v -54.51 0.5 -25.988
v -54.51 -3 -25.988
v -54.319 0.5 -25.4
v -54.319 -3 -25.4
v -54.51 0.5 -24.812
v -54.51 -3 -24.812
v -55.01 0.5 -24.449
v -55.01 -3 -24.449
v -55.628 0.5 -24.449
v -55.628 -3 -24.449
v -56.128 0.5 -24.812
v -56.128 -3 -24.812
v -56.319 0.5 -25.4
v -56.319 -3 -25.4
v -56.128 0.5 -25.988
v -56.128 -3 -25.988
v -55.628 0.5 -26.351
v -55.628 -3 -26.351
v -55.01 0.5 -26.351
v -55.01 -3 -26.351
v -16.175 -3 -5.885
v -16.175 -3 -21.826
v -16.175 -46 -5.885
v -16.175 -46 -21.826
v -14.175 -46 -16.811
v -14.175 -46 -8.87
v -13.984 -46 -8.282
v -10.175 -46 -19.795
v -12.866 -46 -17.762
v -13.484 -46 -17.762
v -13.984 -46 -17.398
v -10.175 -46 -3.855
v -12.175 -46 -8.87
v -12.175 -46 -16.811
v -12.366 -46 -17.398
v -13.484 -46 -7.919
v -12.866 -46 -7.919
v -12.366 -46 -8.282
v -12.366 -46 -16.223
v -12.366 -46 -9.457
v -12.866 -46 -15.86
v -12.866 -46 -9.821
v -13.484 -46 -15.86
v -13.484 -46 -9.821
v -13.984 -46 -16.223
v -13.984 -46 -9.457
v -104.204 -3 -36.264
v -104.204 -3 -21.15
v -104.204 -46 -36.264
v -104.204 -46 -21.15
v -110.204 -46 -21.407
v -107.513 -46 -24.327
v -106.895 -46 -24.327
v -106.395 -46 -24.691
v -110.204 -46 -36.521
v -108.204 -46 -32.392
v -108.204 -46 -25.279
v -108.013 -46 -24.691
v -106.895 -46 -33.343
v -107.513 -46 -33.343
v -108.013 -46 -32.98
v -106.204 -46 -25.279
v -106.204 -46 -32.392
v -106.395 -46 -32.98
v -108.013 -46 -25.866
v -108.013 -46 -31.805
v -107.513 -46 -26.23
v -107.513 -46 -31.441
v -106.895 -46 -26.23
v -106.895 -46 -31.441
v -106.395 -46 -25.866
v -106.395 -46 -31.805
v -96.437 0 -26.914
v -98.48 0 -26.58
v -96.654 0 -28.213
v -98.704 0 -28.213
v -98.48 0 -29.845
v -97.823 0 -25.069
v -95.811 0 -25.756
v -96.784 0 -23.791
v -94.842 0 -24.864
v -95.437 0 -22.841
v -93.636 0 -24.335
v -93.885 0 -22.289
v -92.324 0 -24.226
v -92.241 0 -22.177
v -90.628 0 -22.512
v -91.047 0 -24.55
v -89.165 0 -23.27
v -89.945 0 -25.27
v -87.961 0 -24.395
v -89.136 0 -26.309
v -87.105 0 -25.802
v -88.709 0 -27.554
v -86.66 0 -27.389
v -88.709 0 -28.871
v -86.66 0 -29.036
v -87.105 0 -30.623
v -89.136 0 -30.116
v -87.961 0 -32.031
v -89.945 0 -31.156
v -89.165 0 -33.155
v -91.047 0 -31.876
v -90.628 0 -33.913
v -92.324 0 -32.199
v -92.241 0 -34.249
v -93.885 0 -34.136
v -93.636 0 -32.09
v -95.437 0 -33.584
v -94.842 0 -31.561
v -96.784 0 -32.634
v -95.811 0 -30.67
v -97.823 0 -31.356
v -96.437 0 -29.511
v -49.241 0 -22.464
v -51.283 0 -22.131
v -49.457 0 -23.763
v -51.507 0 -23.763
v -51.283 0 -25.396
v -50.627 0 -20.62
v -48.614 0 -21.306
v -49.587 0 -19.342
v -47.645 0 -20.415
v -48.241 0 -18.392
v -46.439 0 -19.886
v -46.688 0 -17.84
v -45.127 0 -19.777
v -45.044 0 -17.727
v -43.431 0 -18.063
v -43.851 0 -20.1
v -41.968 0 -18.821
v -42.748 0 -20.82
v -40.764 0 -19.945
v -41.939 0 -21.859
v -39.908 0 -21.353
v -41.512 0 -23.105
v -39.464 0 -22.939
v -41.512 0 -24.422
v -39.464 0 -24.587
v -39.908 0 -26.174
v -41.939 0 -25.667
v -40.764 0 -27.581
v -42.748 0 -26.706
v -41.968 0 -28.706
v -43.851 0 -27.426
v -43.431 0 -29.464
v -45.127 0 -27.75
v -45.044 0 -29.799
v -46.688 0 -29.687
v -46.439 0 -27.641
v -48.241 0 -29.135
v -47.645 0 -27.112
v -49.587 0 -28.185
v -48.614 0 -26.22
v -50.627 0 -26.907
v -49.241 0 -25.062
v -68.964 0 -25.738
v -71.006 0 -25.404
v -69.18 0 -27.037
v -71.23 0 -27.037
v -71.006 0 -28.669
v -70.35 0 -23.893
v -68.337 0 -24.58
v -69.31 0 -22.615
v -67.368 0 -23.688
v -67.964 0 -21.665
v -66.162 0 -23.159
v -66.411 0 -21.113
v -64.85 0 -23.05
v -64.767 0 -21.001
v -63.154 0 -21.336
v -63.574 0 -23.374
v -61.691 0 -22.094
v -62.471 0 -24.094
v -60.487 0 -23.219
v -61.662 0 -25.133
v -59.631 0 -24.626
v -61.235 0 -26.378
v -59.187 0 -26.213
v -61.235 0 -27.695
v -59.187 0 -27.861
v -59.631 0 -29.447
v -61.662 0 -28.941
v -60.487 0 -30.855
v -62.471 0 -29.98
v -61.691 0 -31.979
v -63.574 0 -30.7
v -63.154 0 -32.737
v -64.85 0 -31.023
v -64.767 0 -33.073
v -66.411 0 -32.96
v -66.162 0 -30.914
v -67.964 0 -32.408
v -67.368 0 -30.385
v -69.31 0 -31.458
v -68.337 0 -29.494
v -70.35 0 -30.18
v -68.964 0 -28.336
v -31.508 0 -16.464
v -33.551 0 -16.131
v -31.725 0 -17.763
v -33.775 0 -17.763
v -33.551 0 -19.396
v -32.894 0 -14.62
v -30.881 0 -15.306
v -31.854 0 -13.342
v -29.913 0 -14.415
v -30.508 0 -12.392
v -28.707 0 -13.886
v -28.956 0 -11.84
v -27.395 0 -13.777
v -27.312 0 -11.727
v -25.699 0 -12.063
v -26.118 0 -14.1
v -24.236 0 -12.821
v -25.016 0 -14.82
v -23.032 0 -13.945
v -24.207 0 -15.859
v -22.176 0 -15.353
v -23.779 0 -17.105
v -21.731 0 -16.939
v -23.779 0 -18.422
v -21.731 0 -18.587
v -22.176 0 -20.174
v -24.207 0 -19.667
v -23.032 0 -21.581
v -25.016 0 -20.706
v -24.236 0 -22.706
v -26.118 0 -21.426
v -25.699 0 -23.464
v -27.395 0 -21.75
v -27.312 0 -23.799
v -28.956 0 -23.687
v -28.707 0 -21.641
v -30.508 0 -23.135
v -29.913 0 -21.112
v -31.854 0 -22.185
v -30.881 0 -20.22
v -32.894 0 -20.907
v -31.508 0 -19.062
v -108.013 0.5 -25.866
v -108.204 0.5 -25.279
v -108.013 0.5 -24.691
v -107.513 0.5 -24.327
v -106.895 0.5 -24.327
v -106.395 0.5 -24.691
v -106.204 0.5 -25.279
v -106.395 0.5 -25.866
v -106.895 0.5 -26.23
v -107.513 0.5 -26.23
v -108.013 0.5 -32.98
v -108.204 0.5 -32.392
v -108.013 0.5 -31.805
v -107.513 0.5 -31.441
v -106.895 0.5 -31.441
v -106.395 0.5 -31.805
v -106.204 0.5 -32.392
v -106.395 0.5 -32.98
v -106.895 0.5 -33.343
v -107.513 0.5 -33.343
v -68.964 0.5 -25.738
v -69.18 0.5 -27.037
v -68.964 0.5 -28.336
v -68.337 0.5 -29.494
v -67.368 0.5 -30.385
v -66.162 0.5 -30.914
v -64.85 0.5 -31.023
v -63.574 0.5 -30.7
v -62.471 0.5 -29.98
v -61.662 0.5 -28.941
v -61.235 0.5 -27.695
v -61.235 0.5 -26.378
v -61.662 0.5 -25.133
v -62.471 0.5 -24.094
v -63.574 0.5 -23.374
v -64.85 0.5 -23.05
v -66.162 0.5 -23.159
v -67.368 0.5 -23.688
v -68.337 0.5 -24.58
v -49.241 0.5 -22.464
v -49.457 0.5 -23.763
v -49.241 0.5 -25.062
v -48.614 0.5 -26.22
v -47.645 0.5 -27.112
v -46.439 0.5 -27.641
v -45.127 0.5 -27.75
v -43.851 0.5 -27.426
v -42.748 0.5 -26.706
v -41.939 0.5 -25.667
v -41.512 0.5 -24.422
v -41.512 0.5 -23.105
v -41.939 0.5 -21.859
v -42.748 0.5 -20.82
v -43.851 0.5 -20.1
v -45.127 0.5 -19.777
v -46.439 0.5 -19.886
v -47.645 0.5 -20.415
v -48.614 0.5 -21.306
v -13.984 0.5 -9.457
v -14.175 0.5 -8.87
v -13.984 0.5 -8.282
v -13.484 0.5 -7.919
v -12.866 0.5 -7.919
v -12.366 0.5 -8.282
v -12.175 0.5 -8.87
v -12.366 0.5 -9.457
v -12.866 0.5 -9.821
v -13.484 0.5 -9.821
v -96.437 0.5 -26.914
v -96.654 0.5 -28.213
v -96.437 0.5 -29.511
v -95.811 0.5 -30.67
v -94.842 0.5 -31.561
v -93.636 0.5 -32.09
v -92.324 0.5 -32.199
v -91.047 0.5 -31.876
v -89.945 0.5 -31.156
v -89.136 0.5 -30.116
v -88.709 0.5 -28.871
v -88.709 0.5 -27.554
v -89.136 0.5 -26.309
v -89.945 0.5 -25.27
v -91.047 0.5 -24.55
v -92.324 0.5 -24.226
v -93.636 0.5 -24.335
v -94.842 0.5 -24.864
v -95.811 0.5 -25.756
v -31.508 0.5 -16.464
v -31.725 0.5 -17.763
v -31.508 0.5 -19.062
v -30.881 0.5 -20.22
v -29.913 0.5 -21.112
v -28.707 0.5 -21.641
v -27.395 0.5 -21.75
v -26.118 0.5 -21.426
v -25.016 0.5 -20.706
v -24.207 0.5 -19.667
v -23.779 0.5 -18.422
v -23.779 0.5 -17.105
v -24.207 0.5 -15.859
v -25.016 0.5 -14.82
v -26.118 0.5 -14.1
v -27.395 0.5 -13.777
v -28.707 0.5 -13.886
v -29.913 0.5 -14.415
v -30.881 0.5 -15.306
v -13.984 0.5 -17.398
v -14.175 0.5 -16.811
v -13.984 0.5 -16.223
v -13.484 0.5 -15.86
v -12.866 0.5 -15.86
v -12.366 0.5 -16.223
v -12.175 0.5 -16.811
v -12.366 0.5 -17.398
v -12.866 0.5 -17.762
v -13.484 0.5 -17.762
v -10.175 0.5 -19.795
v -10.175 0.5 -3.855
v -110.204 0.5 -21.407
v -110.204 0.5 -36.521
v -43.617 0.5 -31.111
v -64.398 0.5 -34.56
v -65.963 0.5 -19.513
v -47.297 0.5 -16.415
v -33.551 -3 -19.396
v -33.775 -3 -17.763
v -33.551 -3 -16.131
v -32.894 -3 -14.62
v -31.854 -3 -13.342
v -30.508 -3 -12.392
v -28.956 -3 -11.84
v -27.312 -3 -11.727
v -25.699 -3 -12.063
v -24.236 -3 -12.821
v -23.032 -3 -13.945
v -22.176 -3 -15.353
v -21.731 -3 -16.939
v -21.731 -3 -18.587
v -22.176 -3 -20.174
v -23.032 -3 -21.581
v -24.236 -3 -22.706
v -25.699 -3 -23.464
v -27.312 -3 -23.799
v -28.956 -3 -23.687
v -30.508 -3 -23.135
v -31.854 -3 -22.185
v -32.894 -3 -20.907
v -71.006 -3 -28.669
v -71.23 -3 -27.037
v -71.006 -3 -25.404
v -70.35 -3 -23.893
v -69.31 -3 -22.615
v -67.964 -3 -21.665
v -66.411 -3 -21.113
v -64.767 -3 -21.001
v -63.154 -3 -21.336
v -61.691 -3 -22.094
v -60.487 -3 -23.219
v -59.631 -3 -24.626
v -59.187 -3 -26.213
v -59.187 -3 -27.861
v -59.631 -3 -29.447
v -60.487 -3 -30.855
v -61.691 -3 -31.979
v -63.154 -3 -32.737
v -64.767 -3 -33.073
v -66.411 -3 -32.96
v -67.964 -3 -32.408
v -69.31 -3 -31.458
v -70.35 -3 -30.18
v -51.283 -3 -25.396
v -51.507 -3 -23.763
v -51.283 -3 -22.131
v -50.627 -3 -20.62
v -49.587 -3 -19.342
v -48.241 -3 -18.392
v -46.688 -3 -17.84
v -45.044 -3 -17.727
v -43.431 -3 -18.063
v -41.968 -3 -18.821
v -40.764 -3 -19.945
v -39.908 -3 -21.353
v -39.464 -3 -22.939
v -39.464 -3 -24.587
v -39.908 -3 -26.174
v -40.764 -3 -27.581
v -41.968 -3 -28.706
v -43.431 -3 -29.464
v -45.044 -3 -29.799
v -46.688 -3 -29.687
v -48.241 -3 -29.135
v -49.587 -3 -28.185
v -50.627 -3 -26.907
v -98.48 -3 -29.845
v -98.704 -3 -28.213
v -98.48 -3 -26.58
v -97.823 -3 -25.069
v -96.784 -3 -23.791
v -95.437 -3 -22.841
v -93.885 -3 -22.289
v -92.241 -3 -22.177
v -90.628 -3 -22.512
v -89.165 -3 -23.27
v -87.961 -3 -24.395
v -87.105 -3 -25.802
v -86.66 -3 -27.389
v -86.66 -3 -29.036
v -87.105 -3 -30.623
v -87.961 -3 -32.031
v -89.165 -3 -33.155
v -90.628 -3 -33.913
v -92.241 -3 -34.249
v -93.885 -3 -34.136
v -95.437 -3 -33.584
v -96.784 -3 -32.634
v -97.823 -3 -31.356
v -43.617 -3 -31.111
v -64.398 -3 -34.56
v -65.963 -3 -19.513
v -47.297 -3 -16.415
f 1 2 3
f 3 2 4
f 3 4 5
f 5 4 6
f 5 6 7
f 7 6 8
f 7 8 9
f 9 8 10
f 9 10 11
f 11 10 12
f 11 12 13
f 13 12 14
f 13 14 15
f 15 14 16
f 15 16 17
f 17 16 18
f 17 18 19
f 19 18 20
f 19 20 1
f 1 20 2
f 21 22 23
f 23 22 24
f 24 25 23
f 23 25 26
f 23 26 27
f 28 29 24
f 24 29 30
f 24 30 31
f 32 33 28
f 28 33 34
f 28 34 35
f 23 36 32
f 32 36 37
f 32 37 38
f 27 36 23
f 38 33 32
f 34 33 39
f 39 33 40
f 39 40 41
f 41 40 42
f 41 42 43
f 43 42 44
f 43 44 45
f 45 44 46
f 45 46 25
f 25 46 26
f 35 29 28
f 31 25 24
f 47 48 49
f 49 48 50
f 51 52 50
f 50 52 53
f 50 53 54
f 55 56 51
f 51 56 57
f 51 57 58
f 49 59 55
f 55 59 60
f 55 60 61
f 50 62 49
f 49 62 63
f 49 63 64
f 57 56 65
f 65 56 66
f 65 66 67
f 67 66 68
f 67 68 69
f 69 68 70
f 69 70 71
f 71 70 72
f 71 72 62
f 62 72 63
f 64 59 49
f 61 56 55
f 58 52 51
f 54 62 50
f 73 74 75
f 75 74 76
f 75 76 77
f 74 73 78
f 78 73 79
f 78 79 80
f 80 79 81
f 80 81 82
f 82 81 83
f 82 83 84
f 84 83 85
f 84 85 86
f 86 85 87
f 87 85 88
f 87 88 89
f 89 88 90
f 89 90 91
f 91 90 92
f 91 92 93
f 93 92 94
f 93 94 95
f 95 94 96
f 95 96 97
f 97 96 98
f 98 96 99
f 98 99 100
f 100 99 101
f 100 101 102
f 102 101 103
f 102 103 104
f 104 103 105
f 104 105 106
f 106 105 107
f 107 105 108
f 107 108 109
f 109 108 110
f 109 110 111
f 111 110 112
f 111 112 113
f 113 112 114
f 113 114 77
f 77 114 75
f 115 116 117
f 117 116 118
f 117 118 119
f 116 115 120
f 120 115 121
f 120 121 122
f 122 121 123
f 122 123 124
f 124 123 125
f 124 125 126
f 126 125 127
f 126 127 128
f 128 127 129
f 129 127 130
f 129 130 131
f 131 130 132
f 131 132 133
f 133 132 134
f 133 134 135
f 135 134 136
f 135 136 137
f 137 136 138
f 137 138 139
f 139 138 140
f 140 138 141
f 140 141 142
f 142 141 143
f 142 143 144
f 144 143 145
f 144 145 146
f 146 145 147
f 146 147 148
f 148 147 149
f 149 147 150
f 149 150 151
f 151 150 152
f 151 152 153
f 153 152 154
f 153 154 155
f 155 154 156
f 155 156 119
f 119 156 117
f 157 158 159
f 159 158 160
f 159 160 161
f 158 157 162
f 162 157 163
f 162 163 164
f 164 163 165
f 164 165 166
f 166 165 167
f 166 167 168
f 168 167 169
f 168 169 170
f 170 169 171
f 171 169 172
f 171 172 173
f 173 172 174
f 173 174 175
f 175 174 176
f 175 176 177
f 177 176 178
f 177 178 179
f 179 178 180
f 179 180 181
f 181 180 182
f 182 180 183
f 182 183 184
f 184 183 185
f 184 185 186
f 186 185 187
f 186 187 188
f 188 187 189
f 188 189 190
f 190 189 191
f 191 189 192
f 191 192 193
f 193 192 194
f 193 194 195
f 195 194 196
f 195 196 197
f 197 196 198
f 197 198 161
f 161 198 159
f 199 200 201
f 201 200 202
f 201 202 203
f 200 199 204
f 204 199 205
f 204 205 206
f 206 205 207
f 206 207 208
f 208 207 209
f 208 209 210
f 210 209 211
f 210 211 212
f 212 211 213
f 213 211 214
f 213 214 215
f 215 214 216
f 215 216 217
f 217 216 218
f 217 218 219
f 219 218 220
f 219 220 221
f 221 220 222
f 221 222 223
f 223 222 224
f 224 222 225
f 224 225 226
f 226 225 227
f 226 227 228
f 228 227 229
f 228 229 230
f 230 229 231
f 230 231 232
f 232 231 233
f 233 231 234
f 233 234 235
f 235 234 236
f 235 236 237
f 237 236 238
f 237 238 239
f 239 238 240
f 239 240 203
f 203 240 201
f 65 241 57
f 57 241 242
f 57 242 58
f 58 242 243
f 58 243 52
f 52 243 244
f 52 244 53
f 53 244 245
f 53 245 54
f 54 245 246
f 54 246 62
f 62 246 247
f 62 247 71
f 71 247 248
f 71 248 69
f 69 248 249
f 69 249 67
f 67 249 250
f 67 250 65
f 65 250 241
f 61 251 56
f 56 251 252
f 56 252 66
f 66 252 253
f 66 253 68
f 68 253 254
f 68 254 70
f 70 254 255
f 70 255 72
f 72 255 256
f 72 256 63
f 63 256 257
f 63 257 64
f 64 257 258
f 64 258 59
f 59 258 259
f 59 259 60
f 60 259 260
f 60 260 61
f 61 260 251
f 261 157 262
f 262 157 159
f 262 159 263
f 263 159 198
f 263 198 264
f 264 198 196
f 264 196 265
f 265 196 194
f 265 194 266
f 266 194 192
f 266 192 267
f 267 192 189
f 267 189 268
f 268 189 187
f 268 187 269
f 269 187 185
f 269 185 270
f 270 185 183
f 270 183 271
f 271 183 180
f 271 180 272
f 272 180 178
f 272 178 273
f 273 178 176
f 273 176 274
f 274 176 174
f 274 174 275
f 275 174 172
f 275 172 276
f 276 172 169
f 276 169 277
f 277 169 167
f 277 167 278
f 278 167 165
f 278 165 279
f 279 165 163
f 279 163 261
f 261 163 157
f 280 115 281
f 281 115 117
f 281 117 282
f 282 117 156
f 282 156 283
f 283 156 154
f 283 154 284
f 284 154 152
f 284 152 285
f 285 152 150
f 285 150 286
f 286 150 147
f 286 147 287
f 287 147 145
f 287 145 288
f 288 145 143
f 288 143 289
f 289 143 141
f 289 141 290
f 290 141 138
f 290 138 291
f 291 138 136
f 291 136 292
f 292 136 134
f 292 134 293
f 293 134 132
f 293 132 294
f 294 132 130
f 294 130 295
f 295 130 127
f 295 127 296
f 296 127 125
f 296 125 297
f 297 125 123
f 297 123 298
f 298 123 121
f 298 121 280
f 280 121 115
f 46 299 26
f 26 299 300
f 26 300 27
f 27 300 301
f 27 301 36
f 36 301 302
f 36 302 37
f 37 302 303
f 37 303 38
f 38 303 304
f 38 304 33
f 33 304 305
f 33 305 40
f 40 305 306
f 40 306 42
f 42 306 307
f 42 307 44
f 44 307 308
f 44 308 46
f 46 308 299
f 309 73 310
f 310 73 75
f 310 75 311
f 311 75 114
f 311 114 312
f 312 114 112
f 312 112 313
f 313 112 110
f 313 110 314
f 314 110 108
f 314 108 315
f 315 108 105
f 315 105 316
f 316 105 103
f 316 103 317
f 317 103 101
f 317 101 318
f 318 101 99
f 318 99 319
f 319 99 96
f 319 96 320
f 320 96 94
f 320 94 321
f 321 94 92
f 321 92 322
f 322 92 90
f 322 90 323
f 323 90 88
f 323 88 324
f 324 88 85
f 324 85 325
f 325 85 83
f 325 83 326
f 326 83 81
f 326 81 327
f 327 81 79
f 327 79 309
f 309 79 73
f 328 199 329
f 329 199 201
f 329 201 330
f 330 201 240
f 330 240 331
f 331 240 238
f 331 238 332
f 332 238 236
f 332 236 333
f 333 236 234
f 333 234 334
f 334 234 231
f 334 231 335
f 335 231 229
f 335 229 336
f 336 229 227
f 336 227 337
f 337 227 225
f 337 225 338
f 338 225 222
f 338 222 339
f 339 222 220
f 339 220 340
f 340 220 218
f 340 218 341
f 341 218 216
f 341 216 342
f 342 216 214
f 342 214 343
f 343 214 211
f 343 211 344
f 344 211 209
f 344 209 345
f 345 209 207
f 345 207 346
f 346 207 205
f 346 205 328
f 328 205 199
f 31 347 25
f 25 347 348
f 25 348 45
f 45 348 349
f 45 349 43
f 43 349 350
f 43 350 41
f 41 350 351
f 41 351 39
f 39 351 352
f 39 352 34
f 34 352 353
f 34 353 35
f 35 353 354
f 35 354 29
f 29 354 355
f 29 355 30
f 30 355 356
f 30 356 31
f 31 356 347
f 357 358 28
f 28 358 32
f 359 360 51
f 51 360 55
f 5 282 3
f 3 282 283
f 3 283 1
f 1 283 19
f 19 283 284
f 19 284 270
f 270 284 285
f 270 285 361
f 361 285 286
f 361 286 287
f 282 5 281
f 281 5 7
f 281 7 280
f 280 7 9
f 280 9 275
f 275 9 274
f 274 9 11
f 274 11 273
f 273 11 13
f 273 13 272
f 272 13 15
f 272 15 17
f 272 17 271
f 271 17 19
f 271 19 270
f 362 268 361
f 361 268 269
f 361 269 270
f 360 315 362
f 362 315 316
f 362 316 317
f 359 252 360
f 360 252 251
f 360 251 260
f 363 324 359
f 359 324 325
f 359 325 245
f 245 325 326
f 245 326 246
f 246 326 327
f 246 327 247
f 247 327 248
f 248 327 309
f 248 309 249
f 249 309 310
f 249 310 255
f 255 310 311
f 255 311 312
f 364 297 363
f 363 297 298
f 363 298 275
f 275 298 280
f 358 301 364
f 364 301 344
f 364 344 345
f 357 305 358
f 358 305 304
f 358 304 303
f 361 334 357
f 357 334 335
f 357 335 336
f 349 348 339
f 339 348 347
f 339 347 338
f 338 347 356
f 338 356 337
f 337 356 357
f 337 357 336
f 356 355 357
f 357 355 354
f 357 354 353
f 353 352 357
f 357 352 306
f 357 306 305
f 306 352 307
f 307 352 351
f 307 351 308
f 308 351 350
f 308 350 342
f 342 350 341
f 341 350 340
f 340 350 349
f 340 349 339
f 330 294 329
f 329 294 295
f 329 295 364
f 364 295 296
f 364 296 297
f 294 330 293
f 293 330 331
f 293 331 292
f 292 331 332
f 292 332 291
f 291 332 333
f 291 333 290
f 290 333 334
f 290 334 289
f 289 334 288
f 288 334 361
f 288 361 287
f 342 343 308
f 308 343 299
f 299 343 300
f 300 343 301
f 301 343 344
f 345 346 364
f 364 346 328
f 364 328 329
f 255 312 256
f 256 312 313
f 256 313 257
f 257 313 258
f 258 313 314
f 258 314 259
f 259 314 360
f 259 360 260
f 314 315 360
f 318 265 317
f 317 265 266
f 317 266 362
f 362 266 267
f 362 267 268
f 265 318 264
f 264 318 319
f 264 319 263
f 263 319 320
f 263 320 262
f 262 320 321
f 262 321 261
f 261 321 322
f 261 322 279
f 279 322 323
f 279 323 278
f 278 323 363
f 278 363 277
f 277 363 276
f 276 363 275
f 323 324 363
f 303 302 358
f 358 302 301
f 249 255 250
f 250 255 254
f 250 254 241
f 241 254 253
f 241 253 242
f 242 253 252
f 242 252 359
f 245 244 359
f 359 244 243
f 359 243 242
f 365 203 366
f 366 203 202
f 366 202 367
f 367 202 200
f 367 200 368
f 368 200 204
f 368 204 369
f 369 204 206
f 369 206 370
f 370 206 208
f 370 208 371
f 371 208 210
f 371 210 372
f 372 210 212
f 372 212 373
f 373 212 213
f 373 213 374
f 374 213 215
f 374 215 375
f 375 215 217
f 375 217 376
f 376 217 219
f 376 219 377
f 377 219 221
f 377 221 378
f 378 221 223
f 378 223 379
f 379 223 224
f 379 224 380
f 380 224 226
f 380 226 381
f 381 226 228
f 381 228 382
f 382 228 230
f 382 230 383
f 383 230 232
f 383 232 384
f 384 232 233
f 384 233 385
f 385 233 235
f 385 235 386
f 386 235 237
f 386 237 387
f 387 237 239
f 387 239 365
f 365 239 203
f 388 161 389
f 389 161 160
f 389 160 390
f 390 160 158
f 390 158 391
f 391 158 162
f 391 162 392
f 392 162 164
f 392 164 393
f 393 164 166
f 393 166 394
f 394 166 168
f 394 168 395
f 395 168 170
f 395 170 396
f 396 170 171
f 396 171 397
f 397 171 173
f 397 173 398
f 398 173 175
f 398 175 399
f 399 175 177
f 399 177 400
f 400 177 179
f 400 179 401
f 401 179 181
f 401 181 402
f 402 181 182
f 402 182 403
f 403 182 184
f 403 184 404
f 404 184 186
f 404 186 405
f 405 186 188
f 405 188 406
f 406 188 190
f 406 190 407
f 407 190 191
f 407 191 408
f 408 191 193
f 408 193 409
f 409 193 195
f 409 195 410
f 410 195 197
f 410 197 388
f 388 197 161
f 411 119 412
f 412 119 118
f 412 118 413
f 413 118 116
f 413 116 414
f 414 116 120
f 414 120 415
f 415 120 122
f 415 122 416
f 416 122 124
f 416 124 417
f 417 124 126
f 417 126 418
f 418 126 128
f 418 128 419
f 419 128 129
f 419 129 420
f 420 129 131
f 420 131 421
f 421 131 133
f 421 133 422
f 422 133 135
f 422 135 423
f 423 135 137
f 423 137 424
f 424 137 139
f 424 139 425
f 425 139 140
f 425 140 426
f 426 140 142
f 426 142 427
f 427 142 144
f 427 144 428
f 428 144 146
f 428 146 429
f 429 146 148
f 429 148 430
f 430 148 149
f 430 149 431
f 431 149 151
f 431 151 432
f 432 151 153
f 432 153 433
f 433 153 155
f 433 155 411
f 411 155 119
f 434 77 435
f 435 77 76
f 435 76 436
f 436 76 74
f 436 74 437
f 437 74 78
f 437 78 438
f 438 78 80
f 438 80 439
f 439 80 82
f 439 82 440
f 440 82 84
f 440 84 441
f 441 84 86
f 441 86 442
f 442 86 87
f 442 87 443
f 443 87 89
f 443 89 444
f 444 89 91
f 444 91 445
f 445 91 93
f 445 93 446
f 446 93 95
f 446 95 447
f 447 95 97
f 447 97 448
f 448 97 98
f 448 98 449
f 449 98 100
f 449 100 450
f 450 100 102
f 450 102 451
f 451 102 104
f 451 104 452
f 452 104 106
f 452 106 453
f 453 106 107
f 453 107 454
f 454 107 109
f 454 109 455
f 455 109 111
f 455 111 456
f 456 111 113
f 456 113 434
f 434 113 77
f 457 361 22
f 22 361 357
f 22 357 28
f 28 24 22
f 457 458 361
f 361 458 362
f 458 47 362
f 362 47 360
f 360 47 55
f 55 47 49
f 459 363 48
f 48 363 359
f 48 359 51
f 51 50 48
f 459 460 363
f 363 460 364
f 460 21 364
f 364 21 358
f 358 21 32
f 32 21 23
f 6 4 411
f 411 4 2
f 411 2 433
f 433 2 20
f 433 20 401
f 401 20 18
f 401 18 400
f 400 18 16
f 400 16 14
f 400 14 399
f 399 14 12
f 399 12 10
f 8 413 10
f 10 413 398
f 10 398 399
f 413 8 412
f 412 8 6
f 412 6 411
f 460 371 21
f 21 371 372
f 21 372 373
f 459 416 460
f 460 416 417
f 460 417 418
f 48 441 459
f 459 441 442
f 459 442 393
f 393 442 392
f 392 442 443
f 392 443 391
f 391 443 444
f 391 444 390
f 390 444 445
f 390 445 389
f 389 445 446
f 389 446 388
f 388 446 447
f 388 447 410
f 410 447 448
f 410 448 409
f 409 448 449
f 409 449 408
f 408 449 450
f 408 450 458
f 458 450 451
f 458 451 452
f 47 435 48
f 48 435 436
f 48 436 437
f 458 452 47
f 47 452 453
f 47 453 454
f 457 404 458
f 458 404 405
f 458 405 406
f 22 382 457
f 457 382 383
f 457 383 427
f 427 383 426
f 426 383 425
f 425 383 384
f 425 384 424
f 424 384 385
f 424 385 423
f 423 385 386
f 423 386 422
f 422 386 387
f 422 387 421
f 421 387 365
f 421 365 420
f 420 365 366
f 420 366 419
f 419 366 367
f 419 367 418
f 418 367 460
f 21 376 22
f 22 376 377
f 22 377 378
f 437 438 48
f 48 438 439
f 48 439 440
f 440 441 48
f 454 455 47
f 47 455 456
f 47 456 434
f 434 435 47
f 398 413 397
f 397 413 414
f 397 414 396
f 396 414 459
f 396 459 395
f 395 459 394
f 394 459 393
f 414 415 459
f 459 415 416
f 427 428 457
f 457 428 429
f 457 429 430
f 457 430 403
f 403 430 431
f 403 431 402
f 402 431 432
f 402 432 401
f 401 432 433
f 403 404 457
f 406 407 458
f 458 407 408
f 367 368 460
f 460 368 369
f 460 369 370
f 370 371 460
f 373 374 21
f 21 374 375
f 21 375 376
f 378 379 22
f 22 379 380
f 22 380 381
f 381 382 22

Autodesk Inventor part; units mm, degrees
ref_plane "YZ Plane" through (0, 0, 0) normal (1, 0, 0) x (0, 1, 0)
ref_plane "XZ Plane" through (0, 0, 0) normal (0, 1, 0) x (-1, 0, 0)
ref_plane "XY Plane" through (0, 0, 0) normal (0, 0, 1) x (1, 0, 0)
sketch "Sketch1" plane through (0, 0, 0) normal (0, 1, 0) x (-1, 0, 0)
  circle A0 centre (92.6541, -28.2127) radius 6.05
  circle A1 centre (65.1803, -27.0368) radius 6.05
  circle A2 centre (45.4573, -23.7633) radius 6.05
  circle A3 centre (92.6541, -28.2127) radius 7.55
  circle A4 centre (65.1803, -27.0368) radius 7.55
  circle A5 centre (45.4573, -23.7633) radius 7.55
  circle A6 centre (92.6541, -28.2127) radius 4
  circle A7 centre (45.4573, -23.7633) radius 4
  line L0 (92.6541, -28.2127) -> (100.2041, -28.2127)
  line L1 (70.678, -35.6025) -> (39.5208, -30.4313)
  line L2 (60.2143, -34.3811) -> (122.676, -37.0546)
  line L3 (51.451, -33.7618) -> (1.5927, -16.8916)
  line L4 (51.8932, -17.9704) -> (4.2209, -1.8399)
  circle A8 centre (27.7249, -17.7633) radius 4
  circle A9 centre (27.7249, -17.7633) radius 6.05
  circle A10 centre (27.7249, -17.7633) radius 7.55
  line L5 (27.7249, -17.7633) -> (20.1749, -17.7633)
  line L6 (20.1749, -17.7633) -> (16.1749, -17.7633)
  line L7 (16.1749, -17.7633) -> (10.1749, -17.7633)
  line L8 (10.1749, -17.7633) -> (10.1749, -19.7955)
  line L9 (10.1749, -19.7955) -> (10.1749, -3.8545)
  line L10 (13.1749, -17.7633) -> (13.1749, -20.8106)
  line L11 (13.1749, -20.8106) -> (13.1749, -4.8696)
  line L12 (13.1749, -20.8106) -> (13.1749, -16.8106)
  line L13 (13.1749, -4.8696) -> (13.1749, -8.8696)
  circle A11 centre (13.1749, -16.8106) radius 1
  circle A12 centre (13.1749, -8.8696) radius 1
  line L14 (16.1749, -17.7633) -> (16.1749, -21.8257)
  line L15 (16.1749, -17.7633) -> (16.1749, -5.8847)
  line L16 (114.6217, -21.596) -> (60.8612, -19.295)
  line L17 (100.2041, -28.2127) -> (104.2041, -28.2127)
  line L18 (104.2041, -28.2127) -> (110.2041, -28.2127)
  line L19 (107.2041, -28.2127) -> (107.2041, -21.2785)
  line L20 (107.2041, -28.2127) -> (107.2041, -36.3923)
  line L21 (107.2041, -36.3923) -> (107.2041, -28.3923)
  line L22 (107.2041, -21.2785) -> (107.2041, -25.2785)
  circle A13 centre (107.2041, -32.3923) radius 1
  circle A14 centre (107.2041, -25.2785) radius 1
  line L23 (110.2041, -28.2127) -> (110.2041, -36.5208)
  line L24 (104.2041, -28.2127) -> (104.2041, -36.2639)
  line L25 (104.2041, -28.2127) -> (104.2041, -21.1501)
  line L26 (110.2041, -28.2127) -> (110.2041, -21.4069)
  line L27 (75.2254, -21.0507) -> (39.3363, -15.0941)
  line L28 (65.1803, -27.0368) -> (45.4573, -27.0368)
  line L29 (55.3188, -33.0533) -> (55.3188, -17.7467)
  circle A15 centre (55.3188, -25.4) radius 1
  circle A16 centre (55.3188, -25.4) radius 2.55
  circle A17 centre (65.1803, -27.0368) radius 4
  point P0 (43.6173, -31.1112)
  point P1 (64.3979, -34.5602)
  point P2 (65.9627, -19.5133)
  point P3 (66.4165, -19.5886)
  point P4 (65.5031, -19.4937)
  point P5 (47.2973, -16.4154)
  point P6 (47.8772, -16.6116)
  point P7 (46.6935, -16.3152)
  dimension "d143" = 15.1
  dimension "d132" = 12.1
  dimension "d133" = 12.1
  dimension "d134" = 12.1
  dimension "d135" = 15.1
  dimension "d136" = 15.1
  dimension "d137" = 8
  dimension "d139" = 8
  dimension "d140" = 1.1759
  dimension "d141" = 3.2735
  dimension "d142" = 12.1
  dimension "d144" = 8
  dimension "d145" = 6
  dimension "d146" = 4
  dimension "d147" = 6
  dimension "d148" = 4
  dimension "d149" = 4
  dimension "d150" = 2
  dimension "d151" = 2
  dimension "d152" = 4
  dimension "d153" = 6
  dimension "d154" = 4
  dimension "d155" = 4
  dimension "d156" = 2
  dimension "d157" = 2
  dimension "d159" = 5.1
  dimension "d160" = 2
  dimension "d161" = 8
extrude "Extrusion1" add sketch "Sketch1" against normal blind 3 contours A3 | A3 L16 L25 L17 | L17 L24 L2 A3 | A3 L2 A4 L27 L16 | L27 A4 L16 | L16 A4 A16 L29 L27 | L2 L1 A4 | A4 A16 | L29 A16 A5 L4 L27 | L1 L29 A16 L28 A4 | A16 A4 | A4 A16 L28 L29 A15 | L27 A5 L3 A10 L4 | L4 A5 L27 | L29 A15 L28 A16 A5 | L28 A16 A4 | L1 A5 L28 A16 L29 | A5 A16 | A10 L6 L15 L4 | A10 | A15 L29 | L29 A15 | A5 A16 | A16 L29 L28 | L1 L3 A5 | A16 L28 L29 | A10 L3 L14 L6 | A16 L28 A5
extrude "Extrusion2" add sketch "Sketch1" along normal blind 0.5 contours A0 | A3 | A3 L16 L25 L17 | L17 L24 L2 A3 | A3 L2 A4 L27 L16 | L25 L16 L19 A14 L18 | L18 L20 A13 L2 L24 | L27 A4 L16 | L16 A4 A16 L29 L27 | L2 L1 A4 | A1 | A4 A16 | L19 A14 L16 L26 L18 | L18 L23 L2 L20 A13 | L29 A16 A5 L4 L27 | L1 L29 A16 L28 A4 | A16 A4 | A4 A16 L28 L29 A15 | L27 A5 L3 A10 L4 | L4 A5 L27 | L29 A15 L28 A16 A5 | L28 A16 A4 | L1 A5 L28 A16 L29 | A2 | A5 A16 | A10 L6 L15 L4 | A9 | A10 | A15 L29 | L29 A15 | A5 A16 | A16 L29 L28 | L1 L3 A5 | A16 L28 L29 | L15 L7 A11 L11 A12 L4 | A10 L3 L14 L6 | A16 L28 A5 | L11 A12 A11 L7 L9 L4 | L14 L3 L10 A11 L7 | L7 A11 L10 L3 L8
extrude "Extrusion8" add sketch "Sketch1" against normal blind 46 contours L25 L16 L19 A14 L18 | L18 L20 A13 L2 L24 | L19 A14 L16 L26 L18 | L18 L23 L2 L20 A13 | L15 L7 A11 L11 A12 L4 | L11 A12 A11 L7 L9 L4 | L14 L3 L10 A11 L7 | L7 A11 L10 L3 L8
extrude "Extrusion9" cut sketch "Sketch1" along normal through all both and the other way through all contours A15 L29 | L29 A15
properties part number "Servo Holder"
